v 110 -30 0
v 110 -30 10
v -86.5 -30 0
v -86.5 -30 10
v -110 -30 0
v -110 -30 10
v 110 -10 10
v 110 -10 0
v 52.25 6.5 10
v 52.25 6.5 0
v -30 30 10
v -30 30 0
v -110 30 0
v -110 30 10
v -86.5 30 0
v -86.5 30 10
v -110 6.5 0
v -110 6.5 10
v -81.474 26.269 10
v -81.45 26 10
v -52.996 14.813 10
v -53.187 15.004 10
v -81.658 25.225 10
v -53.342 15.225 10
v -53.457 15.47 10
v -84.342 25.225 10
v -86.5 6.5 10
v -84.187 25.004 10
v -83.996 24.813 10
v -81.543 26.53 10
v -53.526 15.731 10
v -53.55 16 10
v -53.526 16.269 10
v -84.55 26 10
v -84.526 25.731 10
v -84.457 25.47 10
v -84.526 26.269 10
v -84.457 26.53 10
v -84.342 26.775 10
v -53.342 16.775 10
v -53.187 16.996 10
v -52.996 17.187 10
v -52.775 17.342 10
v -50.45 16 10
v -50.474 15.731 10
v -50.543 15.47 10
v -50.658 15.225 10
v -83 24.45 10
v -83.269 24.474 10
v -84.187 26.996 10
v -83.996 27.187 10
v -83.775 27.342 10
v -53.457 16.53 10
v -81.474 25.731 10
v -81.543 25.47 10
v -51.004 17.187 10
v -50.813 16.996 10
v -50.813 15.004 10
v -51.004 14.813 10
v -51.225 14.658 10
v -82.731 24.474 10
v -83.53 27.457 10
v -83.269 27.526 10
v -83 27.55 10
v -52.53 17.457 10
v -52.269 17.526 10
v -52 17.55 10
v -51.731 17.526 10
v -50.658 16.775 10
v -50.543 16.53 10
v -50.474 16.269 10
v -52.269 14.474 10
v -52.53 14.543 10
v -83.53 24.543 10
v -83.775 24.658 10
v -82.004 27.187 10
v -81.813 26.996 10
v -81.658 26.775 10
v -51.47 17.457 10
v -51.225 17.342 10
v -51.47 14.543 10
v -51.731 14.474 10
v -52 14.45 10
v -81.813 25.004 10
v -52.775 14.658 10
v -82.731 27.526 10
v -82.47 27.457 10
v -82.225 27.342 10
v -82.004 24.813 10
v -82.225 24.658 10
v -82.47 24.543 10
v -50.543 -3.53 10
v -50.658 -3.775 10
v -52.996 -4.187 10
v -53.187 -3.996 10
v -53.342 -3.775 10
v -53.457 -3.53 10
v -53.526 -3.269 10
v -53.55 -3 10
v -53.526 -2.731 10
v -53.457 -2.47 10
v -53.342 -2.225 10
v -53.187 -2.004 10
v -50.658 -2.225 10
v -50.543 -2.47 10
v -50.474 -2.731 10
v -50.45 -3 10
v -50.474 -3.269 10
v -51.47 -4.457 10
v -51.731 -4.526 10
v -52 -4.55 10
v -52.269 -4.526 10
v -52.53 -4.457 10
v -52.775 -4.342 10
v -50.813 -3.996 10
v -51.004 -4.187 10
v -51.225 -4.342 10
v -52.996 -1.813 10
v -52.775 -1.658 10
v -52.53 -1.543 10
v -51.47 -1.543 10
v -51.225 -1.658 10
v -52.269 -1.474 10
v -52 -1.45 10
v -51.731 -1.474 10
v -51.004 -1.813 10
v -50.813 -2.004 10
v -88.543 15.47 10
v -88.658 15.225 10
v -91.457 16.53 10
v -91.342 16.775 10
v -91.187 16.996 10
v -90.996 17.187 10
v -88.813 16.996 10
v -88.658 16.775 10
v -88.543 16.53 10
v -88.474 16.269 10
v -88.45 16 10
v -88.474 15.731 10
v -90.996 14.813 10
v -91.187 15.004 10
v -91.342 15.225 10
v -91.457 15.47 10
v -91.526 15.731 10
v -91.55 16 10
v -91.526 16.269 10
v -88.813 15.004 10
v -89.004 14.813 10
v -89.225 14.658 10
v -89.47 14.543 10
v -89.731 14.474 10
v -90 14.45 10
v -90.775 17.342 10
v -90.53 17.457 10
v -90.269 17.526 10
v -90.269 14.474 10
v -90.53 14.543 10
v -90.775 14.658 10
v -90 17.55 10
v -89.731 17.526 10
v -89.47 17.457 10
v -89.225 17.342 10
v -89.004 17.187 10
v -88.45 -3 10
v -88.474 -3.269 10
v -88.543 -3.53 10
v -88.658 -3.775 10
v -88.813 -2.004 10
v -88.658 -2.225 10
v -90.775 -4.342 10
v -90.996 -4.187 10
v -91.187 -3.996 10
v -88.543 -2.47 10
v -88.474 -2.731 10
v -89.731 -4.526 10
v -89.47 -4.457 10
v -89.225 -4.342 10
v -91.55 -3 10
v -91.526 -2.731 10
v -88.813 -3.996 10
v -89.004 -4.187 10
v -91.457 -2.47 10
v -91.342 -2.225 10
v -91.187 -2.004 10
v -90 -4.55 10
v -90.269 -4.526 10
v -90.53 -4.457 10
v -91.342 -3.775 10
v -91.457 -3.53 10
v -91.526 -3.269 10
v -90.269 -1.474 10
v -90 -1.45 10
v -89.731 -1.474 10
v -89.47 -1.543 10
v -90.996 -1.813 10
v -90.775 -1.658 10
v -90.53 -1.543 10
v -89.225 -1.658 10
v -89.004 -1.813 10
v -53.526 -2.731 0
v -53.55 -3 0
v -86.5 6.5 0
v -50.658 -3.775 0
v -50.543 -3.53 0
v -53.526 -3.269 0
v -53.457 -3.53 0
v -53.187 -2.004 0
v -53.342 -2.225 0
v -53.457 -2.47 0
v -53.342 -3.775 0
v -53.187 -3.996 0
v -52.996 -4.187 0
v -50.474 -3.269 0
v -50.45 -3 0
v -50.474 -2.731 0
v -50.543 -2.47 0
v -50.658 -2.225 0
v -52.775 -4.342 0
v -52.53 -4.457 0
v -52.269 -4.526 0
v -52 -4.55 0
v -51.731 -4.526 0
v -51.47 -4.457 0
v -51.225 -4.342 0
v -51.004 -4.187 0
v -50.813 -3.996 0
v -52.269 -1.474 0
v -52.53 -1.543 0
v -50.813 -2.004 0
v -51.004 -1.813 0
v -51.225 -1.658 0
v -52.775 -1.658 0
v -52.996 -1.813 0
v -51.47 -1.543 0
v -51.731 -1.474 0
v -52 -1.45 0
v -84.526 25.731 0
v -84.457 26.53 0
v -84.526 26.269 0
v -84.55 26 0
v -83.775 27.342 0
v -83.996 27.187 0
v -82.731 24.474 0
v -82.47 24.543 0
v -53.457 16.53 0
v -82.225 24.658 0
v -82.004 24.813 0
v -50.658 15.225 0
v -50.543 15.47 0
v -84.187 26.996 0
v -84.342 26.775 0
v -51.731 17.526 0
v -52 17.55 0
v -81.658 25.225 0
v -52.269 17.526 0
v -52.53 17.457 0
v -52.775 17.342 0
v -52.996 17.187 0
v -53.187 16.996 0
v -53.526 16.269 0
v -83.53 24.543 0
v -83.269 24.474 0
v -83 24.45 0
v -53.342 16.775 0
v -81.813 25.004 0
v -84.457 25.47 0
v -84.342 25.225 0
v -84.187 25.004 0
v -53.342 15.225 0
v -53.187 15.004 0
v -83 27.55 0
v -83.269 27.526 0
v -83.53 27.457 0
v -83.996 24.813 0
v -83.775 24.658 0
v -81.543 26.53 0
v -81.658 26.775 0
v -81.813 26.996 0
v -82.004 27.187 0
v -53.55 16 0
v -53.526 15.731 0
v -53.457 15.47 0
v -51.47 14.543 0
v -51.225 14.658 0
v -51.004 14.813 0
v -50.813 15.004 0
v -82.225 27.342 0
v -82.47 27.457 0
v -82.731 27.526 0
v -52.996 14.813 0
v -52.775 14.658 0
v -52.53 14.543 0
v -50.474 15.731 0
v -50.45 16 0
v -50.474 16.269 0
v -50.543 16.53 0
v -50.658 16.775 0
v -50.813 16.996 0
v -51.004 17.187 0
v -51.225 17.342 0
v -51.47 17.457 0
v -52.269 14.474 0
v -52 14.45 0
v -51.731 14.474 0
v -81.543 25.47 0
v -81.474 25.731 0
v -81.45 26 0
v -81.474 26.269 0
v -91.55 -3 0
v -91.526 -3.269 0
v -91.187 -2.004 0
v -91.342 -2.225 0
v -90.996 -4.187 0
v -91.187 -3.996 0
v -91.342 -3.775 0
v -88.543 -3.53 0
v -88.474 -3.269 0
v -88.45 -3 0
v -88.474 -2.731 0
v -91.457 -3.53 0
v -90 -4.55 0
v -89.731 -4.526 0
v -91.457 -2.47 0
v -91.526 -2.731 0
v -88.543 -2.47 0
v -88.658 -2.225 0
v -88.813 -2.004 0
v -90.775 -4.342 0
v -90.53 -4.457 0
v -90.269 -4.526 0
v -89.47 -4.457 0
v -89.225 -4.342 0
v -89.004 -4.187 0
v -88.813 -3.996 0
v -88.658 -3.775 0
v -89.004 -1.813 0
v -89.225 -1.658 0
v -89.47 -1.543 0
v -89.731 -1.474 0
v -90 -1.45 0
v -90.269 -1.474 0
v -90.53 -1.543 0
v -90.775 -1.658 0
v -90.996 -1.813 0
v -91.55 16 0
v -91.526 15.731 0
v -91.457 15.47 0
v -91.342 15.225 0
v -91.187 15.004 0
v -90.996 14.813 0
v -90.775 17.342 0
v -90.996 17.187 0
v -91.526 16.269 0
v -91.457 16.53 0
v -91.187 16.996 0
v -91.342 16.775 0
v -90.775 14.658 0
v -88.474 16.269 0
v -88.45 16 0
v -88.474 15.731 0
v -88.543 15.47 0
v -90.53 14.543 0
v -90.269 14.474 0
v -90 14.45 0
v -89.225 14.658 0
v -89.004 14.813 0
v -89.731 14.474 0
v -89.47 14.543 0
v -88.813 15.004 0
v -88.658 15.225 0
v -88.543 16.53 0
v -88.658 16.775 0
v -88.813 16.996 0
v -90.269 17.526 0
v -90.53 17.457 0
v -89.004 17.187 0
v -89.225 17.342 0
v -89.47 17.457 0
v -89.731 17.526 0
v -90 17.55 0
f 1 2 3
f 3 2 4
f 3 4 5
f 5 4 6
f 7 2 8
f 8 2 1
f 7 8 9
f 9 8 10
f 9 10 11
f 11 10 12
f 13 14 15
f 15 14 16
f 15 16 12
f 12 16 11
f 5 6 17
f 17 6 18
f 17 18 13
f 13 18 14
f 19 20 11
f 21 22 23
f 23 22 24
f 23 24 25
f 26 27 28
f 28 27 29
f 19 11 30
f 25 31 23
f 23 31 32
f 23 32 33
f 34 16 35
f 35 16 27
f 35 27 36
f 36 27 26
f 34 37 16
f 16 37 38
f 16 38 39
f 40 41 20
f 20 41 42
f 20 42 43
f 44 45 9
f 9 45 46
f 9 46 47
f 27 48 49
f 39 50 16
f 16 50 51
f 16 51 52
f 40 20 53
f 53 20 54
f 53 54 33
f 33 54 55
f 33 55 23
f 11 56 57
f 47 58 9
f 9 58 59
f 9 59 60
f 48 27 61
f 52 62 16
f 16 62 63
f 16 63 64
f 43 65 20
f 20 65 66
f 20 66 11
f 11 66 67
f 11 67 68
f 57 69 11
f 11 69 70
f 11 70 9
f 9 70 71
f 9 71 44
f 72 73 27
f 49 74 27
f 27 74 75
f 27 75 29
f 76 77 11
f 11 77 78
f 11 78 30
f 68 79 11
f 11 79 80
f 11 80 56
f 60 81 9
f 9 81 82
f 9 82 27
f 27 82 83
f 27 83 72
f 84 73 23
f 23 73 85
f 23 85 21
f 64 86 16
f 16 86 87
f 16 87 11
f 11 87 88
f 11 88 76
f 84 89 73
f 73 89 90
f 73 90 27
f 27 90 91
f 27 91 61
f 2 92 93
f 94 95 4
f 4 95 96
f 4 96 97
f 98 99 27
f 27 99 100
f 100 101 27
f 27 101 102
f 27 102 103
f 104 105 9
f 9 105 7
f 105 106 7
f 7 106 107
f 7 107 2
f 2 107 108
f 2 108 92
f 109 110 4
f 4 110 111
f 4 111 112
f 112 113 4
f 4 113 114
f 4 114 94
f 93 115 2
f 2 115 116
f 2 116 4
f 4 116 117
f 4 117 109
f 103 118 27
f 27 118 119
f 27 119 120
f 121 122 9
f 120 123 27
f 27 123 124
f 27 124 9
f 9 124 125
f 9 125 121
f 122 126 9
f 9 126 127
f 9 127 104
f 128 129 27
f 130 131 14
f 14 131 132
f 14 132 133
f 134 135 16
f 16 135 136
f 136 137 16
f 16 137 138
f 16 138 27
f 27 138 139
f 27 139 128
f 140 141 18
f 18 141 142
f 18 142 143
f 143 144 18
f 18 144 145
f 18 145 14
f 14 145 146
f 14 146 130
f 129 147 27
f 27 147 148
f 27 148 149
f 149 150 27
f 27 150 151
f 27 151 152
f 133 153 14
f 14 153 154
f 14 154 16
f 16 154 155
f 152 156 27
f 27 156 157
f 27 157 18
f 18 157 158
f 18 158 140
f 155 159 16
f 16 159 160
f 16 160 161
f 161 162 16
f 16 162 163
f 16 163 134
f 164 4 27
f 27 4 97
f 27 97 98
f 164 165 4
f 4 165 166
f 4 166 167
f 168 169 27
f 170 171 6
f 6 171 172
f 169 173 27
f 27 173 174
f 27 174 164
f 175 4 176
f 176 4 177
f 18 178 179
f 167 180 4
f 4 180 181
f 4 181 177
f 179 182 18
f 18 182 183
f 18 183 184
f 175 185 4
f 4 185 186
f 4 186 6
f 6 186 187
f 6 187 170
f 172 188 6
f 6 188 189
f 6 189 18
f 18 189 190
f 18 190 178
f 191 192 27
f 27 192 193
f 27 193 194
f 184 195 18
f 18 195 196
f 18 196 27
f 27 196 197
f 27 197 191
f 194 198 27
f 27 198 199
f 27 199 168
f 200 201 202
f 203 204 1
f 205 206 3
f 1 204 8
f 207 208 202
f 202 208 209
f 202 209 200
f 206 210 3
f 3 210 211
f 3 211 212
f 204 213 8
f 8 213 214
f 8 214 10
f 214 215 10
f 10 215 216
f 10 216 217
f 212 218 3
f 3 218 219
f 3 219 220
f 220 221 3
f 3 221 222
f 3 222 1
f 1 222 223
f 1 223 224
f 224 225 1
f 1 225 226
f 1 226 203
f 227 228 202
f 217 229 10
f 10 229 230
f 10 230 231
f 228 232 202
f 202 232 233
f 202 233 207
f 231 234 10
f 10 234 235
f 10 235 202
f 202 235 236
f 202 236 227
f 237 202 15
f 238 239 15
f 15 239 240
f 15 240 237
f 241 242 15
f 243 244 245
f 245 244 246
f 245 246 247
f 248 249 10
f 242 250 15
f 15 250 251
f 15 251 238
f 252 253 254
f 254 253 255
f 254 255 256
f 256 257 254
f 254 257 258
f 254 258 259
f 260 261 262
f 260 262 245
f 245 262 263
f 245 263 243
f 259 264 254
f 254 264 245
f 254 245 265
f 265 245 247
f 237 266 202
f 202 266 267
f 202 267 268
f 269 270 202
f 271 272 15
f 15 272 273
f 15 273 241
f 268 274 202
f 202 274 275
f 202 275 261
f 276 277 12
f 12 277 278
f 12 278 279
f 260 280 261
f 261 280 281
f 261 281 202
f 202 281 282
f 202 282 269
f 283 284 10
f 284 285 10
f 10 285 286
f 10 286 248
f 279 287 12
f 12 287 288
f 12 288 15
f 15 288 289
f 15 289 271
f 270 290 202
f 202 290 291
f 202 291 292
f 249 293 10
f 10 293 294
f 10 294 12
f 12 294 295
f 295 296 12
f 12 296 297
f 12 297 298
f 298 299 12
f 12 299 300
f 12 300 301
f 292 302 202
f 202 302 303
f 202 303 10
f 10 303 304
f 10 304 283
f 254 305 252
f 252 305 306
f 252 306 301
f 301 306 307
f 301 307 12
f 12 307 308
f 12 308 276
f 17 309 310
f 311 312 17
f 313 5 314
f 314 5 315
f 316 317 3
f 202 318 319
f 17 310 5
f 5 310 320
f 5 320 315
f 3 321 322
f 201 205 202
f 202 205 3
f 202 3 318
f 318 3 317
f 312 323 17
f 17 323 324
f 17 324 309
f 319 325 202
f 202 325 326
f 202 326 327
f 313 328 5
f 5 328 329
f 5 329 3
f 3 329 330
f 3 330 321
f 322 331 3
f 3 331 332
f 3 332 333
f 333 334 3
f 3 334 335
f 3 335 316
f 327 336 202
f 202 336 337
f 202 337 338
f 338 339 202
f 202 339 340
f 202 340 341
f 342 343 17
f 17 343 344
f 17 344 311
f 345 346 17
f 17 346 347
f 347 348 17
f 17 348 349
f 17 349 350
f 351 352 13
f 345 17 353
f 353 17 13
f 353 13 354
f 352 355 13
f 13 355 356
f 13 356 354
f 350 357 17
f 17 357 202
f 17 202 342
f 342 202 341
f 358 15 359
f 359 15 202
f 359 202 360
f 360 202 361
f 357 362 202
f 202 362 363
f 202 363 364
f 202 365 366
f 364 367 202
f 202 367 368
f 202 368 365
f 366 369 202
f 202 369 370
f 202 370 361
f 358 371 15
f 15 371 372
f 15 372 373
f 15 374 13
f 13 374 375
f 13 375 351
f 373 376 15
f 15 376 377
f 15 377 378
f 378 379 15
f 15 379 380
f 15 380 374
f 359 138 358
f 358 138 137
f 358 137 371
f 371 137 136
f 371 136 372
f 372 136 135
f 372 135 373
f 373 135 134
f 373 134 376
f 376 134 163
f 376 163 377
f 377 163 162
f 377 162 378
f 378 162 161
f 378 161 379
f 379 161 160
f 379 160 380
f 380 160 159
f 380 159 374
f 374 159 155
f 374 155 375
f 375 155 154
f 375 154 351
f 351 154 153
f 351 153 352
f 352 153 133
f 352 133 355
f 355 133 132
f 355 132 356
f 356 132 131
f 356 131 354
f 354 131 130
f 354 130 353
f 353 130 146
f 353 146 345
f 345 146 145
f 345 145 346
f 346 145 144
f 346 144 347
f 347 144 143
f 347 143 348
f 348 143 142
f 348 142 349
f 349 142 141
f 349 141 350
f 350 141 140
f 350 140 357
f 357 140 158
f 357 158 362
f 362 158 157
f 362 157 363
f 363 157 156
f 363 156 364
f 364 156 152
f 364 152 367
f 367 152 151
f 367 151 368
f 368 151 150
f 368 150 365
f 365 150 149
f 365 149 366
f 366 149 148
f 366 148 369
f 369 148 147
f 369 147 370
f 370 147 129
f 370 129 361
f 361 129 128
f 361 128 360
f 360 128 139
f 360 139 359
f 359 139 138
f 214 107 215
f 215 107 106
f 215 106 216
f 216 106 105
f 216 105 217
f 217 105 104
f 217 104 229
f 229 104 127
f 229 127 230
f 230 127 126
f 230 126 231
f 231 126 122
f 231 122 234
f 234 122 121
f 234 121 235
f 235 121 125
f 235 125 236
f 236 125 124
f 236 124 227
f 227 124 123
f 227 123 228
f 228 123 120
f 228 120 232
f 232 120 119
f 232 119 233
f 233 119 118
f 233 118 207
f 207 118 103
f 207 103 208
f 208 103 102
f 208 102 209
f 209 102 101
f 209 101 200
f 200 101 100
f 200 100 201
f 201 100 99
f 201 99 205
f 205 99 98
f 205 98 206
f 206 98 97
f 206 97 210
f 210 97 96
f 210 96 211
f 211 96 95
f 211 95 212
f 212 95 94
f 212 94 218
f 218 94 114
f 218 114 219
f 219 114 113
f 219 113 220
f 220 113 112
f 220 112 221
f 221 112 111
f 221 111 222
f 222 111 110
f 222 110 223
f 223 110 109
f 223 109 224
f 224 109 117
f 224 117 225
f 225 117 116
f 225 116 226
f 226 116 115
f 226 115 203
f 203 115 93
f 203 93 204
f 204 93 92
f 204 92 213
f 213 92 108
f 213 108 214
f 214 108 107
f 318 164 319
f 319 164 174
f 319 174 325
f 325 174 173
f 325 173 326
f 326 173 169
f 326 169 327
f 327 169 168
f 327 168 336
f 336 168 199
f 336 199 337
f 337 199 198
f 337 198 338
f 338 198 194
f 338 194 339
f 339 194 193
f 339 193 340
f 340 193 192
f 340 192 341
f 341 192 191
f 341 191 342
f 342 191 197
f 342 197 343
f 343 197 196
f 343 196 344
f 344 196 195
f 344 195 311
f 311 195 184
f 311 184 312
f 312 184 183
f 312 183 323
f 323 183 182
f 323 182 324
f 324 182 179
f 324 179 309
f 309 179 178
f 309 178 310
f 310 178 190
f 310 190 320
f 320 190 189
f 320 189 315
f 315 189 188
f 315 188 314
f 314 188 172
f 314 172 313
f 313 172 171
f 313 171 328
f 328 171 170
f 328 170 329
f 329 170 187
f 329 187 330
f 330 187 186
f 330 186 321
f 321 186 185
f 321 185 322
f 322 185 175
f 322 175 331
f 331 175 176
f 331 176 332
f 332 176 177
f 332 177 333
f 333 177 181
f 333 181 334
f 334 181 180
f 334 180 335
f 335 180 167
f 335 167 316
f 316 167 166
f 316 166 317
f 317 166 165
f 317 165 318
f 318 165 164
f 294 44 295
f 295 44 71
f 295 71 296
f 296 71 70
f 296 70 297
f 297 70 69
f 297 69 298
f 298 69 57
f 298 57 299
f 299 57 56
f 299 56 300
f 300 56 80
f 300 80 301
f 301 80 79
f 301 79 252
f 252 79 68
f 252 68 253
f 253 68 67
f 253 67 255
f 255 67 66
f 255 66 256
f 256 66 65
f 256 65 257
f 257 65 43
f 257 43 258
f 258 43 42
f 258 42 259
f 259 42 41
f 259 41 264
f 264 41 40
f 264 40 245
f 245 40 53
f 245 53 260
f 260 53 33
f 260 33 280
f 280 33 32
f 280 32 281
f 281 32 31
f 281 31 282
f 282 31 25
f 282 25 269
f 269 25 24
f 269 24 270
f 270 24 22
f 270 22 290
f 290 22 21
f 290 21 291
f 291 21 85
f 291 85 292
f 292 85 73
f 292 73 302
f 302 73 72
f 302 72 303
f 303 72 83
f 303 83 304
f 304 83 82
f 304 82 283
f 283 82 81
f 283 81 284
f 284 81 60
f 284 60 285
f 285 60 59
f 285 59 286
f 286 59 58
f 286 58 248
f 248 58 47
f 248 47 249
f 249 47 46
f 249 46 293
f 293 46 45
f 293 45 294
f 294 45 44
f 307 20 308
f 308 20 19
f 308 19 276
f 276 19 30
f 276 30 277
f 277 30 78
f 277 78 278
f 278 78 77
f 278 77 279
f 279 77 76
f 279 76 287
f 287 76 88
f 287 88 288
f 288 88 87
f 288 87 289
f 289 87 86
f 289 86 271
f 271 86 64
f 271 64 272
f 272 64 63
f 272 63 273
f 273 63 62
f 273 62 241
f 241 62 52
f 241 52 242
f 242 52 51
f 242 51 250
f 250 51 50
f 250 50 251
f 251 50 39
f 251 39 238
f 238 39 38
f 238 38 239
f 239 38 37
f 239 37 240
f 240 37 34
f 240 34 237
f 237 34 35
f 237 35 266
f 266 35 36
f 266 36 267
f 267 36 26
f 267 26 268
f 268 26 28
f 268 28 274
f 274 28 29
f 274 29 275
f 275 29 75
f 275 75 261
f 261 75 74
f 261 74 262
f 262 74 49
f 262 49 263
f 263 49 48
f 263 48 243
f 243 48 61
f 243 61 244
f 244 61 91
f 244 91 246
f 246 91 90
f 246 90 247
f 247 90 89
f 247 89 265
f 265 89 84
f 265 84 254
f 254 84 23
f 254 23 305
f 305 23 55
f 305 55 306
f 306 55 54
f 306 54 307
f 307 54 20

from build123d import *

# Parameters (mm, degrees)
BOSS_EXTRUDE1_DEPTH = 10
SKETCH2_R           = 1.55
CUT_EXTRUDE1_DEPTH  = 115.455231423
CUT_EXTRUDE2_REACH  = 116.455
SKETCH3_R           = 1.55


with BuildPart() as part:
    # Sketch1 → Boss-Extrude1 (new body)
    with BuildSketch(Plane.XY):
        Polygon((110, -30), (110, -10), (-30, 30), (-110, 30), (-110, -30), align=None)
    extrude(amount=BOSS_EXTRUDE1_DEPTH)

    # Sketch2 → Cut-Extrude1 (cut, through all)
    with BuildSketch(Plane.XY.offset(10)):
        with Locations((-90, 16)):
            Circle(SKETCH2_R)
        with Locations((-52, 16)):
            Circle(SKETCH2_R)
        with Locations((-90, -3)):
            Circle(SKETCH2_R)
        with Locations((-52, -3)):
            Circle(SKETCH2_R)
    extrude(amount=-CUT_EXTRUDE1_DEPTH, mode=Mode.SUBTRACT)

    # Sketch3 → Cut-Extrude2 (cut, up to next)
    with BuildSketch(Plane.XY.offset(10), mode=Mode.PRIVATE) as cut_extrude2_sk1:
        with Locations((-83, 26)):
            Circle(SKETCH3_R)
    cut_extrude2_tool1 = extrude(cut_extrude2_sk1.sketch, amount=-CUT_EXTRUDE2_REACH, mode=Mode.PRIVATE) & part.part
    add(cut_extrude2_tool1.solids().sort_by_distance((-83, 26, 10))[0], mode=Mode.SUBTRACT)


solid = part.part
